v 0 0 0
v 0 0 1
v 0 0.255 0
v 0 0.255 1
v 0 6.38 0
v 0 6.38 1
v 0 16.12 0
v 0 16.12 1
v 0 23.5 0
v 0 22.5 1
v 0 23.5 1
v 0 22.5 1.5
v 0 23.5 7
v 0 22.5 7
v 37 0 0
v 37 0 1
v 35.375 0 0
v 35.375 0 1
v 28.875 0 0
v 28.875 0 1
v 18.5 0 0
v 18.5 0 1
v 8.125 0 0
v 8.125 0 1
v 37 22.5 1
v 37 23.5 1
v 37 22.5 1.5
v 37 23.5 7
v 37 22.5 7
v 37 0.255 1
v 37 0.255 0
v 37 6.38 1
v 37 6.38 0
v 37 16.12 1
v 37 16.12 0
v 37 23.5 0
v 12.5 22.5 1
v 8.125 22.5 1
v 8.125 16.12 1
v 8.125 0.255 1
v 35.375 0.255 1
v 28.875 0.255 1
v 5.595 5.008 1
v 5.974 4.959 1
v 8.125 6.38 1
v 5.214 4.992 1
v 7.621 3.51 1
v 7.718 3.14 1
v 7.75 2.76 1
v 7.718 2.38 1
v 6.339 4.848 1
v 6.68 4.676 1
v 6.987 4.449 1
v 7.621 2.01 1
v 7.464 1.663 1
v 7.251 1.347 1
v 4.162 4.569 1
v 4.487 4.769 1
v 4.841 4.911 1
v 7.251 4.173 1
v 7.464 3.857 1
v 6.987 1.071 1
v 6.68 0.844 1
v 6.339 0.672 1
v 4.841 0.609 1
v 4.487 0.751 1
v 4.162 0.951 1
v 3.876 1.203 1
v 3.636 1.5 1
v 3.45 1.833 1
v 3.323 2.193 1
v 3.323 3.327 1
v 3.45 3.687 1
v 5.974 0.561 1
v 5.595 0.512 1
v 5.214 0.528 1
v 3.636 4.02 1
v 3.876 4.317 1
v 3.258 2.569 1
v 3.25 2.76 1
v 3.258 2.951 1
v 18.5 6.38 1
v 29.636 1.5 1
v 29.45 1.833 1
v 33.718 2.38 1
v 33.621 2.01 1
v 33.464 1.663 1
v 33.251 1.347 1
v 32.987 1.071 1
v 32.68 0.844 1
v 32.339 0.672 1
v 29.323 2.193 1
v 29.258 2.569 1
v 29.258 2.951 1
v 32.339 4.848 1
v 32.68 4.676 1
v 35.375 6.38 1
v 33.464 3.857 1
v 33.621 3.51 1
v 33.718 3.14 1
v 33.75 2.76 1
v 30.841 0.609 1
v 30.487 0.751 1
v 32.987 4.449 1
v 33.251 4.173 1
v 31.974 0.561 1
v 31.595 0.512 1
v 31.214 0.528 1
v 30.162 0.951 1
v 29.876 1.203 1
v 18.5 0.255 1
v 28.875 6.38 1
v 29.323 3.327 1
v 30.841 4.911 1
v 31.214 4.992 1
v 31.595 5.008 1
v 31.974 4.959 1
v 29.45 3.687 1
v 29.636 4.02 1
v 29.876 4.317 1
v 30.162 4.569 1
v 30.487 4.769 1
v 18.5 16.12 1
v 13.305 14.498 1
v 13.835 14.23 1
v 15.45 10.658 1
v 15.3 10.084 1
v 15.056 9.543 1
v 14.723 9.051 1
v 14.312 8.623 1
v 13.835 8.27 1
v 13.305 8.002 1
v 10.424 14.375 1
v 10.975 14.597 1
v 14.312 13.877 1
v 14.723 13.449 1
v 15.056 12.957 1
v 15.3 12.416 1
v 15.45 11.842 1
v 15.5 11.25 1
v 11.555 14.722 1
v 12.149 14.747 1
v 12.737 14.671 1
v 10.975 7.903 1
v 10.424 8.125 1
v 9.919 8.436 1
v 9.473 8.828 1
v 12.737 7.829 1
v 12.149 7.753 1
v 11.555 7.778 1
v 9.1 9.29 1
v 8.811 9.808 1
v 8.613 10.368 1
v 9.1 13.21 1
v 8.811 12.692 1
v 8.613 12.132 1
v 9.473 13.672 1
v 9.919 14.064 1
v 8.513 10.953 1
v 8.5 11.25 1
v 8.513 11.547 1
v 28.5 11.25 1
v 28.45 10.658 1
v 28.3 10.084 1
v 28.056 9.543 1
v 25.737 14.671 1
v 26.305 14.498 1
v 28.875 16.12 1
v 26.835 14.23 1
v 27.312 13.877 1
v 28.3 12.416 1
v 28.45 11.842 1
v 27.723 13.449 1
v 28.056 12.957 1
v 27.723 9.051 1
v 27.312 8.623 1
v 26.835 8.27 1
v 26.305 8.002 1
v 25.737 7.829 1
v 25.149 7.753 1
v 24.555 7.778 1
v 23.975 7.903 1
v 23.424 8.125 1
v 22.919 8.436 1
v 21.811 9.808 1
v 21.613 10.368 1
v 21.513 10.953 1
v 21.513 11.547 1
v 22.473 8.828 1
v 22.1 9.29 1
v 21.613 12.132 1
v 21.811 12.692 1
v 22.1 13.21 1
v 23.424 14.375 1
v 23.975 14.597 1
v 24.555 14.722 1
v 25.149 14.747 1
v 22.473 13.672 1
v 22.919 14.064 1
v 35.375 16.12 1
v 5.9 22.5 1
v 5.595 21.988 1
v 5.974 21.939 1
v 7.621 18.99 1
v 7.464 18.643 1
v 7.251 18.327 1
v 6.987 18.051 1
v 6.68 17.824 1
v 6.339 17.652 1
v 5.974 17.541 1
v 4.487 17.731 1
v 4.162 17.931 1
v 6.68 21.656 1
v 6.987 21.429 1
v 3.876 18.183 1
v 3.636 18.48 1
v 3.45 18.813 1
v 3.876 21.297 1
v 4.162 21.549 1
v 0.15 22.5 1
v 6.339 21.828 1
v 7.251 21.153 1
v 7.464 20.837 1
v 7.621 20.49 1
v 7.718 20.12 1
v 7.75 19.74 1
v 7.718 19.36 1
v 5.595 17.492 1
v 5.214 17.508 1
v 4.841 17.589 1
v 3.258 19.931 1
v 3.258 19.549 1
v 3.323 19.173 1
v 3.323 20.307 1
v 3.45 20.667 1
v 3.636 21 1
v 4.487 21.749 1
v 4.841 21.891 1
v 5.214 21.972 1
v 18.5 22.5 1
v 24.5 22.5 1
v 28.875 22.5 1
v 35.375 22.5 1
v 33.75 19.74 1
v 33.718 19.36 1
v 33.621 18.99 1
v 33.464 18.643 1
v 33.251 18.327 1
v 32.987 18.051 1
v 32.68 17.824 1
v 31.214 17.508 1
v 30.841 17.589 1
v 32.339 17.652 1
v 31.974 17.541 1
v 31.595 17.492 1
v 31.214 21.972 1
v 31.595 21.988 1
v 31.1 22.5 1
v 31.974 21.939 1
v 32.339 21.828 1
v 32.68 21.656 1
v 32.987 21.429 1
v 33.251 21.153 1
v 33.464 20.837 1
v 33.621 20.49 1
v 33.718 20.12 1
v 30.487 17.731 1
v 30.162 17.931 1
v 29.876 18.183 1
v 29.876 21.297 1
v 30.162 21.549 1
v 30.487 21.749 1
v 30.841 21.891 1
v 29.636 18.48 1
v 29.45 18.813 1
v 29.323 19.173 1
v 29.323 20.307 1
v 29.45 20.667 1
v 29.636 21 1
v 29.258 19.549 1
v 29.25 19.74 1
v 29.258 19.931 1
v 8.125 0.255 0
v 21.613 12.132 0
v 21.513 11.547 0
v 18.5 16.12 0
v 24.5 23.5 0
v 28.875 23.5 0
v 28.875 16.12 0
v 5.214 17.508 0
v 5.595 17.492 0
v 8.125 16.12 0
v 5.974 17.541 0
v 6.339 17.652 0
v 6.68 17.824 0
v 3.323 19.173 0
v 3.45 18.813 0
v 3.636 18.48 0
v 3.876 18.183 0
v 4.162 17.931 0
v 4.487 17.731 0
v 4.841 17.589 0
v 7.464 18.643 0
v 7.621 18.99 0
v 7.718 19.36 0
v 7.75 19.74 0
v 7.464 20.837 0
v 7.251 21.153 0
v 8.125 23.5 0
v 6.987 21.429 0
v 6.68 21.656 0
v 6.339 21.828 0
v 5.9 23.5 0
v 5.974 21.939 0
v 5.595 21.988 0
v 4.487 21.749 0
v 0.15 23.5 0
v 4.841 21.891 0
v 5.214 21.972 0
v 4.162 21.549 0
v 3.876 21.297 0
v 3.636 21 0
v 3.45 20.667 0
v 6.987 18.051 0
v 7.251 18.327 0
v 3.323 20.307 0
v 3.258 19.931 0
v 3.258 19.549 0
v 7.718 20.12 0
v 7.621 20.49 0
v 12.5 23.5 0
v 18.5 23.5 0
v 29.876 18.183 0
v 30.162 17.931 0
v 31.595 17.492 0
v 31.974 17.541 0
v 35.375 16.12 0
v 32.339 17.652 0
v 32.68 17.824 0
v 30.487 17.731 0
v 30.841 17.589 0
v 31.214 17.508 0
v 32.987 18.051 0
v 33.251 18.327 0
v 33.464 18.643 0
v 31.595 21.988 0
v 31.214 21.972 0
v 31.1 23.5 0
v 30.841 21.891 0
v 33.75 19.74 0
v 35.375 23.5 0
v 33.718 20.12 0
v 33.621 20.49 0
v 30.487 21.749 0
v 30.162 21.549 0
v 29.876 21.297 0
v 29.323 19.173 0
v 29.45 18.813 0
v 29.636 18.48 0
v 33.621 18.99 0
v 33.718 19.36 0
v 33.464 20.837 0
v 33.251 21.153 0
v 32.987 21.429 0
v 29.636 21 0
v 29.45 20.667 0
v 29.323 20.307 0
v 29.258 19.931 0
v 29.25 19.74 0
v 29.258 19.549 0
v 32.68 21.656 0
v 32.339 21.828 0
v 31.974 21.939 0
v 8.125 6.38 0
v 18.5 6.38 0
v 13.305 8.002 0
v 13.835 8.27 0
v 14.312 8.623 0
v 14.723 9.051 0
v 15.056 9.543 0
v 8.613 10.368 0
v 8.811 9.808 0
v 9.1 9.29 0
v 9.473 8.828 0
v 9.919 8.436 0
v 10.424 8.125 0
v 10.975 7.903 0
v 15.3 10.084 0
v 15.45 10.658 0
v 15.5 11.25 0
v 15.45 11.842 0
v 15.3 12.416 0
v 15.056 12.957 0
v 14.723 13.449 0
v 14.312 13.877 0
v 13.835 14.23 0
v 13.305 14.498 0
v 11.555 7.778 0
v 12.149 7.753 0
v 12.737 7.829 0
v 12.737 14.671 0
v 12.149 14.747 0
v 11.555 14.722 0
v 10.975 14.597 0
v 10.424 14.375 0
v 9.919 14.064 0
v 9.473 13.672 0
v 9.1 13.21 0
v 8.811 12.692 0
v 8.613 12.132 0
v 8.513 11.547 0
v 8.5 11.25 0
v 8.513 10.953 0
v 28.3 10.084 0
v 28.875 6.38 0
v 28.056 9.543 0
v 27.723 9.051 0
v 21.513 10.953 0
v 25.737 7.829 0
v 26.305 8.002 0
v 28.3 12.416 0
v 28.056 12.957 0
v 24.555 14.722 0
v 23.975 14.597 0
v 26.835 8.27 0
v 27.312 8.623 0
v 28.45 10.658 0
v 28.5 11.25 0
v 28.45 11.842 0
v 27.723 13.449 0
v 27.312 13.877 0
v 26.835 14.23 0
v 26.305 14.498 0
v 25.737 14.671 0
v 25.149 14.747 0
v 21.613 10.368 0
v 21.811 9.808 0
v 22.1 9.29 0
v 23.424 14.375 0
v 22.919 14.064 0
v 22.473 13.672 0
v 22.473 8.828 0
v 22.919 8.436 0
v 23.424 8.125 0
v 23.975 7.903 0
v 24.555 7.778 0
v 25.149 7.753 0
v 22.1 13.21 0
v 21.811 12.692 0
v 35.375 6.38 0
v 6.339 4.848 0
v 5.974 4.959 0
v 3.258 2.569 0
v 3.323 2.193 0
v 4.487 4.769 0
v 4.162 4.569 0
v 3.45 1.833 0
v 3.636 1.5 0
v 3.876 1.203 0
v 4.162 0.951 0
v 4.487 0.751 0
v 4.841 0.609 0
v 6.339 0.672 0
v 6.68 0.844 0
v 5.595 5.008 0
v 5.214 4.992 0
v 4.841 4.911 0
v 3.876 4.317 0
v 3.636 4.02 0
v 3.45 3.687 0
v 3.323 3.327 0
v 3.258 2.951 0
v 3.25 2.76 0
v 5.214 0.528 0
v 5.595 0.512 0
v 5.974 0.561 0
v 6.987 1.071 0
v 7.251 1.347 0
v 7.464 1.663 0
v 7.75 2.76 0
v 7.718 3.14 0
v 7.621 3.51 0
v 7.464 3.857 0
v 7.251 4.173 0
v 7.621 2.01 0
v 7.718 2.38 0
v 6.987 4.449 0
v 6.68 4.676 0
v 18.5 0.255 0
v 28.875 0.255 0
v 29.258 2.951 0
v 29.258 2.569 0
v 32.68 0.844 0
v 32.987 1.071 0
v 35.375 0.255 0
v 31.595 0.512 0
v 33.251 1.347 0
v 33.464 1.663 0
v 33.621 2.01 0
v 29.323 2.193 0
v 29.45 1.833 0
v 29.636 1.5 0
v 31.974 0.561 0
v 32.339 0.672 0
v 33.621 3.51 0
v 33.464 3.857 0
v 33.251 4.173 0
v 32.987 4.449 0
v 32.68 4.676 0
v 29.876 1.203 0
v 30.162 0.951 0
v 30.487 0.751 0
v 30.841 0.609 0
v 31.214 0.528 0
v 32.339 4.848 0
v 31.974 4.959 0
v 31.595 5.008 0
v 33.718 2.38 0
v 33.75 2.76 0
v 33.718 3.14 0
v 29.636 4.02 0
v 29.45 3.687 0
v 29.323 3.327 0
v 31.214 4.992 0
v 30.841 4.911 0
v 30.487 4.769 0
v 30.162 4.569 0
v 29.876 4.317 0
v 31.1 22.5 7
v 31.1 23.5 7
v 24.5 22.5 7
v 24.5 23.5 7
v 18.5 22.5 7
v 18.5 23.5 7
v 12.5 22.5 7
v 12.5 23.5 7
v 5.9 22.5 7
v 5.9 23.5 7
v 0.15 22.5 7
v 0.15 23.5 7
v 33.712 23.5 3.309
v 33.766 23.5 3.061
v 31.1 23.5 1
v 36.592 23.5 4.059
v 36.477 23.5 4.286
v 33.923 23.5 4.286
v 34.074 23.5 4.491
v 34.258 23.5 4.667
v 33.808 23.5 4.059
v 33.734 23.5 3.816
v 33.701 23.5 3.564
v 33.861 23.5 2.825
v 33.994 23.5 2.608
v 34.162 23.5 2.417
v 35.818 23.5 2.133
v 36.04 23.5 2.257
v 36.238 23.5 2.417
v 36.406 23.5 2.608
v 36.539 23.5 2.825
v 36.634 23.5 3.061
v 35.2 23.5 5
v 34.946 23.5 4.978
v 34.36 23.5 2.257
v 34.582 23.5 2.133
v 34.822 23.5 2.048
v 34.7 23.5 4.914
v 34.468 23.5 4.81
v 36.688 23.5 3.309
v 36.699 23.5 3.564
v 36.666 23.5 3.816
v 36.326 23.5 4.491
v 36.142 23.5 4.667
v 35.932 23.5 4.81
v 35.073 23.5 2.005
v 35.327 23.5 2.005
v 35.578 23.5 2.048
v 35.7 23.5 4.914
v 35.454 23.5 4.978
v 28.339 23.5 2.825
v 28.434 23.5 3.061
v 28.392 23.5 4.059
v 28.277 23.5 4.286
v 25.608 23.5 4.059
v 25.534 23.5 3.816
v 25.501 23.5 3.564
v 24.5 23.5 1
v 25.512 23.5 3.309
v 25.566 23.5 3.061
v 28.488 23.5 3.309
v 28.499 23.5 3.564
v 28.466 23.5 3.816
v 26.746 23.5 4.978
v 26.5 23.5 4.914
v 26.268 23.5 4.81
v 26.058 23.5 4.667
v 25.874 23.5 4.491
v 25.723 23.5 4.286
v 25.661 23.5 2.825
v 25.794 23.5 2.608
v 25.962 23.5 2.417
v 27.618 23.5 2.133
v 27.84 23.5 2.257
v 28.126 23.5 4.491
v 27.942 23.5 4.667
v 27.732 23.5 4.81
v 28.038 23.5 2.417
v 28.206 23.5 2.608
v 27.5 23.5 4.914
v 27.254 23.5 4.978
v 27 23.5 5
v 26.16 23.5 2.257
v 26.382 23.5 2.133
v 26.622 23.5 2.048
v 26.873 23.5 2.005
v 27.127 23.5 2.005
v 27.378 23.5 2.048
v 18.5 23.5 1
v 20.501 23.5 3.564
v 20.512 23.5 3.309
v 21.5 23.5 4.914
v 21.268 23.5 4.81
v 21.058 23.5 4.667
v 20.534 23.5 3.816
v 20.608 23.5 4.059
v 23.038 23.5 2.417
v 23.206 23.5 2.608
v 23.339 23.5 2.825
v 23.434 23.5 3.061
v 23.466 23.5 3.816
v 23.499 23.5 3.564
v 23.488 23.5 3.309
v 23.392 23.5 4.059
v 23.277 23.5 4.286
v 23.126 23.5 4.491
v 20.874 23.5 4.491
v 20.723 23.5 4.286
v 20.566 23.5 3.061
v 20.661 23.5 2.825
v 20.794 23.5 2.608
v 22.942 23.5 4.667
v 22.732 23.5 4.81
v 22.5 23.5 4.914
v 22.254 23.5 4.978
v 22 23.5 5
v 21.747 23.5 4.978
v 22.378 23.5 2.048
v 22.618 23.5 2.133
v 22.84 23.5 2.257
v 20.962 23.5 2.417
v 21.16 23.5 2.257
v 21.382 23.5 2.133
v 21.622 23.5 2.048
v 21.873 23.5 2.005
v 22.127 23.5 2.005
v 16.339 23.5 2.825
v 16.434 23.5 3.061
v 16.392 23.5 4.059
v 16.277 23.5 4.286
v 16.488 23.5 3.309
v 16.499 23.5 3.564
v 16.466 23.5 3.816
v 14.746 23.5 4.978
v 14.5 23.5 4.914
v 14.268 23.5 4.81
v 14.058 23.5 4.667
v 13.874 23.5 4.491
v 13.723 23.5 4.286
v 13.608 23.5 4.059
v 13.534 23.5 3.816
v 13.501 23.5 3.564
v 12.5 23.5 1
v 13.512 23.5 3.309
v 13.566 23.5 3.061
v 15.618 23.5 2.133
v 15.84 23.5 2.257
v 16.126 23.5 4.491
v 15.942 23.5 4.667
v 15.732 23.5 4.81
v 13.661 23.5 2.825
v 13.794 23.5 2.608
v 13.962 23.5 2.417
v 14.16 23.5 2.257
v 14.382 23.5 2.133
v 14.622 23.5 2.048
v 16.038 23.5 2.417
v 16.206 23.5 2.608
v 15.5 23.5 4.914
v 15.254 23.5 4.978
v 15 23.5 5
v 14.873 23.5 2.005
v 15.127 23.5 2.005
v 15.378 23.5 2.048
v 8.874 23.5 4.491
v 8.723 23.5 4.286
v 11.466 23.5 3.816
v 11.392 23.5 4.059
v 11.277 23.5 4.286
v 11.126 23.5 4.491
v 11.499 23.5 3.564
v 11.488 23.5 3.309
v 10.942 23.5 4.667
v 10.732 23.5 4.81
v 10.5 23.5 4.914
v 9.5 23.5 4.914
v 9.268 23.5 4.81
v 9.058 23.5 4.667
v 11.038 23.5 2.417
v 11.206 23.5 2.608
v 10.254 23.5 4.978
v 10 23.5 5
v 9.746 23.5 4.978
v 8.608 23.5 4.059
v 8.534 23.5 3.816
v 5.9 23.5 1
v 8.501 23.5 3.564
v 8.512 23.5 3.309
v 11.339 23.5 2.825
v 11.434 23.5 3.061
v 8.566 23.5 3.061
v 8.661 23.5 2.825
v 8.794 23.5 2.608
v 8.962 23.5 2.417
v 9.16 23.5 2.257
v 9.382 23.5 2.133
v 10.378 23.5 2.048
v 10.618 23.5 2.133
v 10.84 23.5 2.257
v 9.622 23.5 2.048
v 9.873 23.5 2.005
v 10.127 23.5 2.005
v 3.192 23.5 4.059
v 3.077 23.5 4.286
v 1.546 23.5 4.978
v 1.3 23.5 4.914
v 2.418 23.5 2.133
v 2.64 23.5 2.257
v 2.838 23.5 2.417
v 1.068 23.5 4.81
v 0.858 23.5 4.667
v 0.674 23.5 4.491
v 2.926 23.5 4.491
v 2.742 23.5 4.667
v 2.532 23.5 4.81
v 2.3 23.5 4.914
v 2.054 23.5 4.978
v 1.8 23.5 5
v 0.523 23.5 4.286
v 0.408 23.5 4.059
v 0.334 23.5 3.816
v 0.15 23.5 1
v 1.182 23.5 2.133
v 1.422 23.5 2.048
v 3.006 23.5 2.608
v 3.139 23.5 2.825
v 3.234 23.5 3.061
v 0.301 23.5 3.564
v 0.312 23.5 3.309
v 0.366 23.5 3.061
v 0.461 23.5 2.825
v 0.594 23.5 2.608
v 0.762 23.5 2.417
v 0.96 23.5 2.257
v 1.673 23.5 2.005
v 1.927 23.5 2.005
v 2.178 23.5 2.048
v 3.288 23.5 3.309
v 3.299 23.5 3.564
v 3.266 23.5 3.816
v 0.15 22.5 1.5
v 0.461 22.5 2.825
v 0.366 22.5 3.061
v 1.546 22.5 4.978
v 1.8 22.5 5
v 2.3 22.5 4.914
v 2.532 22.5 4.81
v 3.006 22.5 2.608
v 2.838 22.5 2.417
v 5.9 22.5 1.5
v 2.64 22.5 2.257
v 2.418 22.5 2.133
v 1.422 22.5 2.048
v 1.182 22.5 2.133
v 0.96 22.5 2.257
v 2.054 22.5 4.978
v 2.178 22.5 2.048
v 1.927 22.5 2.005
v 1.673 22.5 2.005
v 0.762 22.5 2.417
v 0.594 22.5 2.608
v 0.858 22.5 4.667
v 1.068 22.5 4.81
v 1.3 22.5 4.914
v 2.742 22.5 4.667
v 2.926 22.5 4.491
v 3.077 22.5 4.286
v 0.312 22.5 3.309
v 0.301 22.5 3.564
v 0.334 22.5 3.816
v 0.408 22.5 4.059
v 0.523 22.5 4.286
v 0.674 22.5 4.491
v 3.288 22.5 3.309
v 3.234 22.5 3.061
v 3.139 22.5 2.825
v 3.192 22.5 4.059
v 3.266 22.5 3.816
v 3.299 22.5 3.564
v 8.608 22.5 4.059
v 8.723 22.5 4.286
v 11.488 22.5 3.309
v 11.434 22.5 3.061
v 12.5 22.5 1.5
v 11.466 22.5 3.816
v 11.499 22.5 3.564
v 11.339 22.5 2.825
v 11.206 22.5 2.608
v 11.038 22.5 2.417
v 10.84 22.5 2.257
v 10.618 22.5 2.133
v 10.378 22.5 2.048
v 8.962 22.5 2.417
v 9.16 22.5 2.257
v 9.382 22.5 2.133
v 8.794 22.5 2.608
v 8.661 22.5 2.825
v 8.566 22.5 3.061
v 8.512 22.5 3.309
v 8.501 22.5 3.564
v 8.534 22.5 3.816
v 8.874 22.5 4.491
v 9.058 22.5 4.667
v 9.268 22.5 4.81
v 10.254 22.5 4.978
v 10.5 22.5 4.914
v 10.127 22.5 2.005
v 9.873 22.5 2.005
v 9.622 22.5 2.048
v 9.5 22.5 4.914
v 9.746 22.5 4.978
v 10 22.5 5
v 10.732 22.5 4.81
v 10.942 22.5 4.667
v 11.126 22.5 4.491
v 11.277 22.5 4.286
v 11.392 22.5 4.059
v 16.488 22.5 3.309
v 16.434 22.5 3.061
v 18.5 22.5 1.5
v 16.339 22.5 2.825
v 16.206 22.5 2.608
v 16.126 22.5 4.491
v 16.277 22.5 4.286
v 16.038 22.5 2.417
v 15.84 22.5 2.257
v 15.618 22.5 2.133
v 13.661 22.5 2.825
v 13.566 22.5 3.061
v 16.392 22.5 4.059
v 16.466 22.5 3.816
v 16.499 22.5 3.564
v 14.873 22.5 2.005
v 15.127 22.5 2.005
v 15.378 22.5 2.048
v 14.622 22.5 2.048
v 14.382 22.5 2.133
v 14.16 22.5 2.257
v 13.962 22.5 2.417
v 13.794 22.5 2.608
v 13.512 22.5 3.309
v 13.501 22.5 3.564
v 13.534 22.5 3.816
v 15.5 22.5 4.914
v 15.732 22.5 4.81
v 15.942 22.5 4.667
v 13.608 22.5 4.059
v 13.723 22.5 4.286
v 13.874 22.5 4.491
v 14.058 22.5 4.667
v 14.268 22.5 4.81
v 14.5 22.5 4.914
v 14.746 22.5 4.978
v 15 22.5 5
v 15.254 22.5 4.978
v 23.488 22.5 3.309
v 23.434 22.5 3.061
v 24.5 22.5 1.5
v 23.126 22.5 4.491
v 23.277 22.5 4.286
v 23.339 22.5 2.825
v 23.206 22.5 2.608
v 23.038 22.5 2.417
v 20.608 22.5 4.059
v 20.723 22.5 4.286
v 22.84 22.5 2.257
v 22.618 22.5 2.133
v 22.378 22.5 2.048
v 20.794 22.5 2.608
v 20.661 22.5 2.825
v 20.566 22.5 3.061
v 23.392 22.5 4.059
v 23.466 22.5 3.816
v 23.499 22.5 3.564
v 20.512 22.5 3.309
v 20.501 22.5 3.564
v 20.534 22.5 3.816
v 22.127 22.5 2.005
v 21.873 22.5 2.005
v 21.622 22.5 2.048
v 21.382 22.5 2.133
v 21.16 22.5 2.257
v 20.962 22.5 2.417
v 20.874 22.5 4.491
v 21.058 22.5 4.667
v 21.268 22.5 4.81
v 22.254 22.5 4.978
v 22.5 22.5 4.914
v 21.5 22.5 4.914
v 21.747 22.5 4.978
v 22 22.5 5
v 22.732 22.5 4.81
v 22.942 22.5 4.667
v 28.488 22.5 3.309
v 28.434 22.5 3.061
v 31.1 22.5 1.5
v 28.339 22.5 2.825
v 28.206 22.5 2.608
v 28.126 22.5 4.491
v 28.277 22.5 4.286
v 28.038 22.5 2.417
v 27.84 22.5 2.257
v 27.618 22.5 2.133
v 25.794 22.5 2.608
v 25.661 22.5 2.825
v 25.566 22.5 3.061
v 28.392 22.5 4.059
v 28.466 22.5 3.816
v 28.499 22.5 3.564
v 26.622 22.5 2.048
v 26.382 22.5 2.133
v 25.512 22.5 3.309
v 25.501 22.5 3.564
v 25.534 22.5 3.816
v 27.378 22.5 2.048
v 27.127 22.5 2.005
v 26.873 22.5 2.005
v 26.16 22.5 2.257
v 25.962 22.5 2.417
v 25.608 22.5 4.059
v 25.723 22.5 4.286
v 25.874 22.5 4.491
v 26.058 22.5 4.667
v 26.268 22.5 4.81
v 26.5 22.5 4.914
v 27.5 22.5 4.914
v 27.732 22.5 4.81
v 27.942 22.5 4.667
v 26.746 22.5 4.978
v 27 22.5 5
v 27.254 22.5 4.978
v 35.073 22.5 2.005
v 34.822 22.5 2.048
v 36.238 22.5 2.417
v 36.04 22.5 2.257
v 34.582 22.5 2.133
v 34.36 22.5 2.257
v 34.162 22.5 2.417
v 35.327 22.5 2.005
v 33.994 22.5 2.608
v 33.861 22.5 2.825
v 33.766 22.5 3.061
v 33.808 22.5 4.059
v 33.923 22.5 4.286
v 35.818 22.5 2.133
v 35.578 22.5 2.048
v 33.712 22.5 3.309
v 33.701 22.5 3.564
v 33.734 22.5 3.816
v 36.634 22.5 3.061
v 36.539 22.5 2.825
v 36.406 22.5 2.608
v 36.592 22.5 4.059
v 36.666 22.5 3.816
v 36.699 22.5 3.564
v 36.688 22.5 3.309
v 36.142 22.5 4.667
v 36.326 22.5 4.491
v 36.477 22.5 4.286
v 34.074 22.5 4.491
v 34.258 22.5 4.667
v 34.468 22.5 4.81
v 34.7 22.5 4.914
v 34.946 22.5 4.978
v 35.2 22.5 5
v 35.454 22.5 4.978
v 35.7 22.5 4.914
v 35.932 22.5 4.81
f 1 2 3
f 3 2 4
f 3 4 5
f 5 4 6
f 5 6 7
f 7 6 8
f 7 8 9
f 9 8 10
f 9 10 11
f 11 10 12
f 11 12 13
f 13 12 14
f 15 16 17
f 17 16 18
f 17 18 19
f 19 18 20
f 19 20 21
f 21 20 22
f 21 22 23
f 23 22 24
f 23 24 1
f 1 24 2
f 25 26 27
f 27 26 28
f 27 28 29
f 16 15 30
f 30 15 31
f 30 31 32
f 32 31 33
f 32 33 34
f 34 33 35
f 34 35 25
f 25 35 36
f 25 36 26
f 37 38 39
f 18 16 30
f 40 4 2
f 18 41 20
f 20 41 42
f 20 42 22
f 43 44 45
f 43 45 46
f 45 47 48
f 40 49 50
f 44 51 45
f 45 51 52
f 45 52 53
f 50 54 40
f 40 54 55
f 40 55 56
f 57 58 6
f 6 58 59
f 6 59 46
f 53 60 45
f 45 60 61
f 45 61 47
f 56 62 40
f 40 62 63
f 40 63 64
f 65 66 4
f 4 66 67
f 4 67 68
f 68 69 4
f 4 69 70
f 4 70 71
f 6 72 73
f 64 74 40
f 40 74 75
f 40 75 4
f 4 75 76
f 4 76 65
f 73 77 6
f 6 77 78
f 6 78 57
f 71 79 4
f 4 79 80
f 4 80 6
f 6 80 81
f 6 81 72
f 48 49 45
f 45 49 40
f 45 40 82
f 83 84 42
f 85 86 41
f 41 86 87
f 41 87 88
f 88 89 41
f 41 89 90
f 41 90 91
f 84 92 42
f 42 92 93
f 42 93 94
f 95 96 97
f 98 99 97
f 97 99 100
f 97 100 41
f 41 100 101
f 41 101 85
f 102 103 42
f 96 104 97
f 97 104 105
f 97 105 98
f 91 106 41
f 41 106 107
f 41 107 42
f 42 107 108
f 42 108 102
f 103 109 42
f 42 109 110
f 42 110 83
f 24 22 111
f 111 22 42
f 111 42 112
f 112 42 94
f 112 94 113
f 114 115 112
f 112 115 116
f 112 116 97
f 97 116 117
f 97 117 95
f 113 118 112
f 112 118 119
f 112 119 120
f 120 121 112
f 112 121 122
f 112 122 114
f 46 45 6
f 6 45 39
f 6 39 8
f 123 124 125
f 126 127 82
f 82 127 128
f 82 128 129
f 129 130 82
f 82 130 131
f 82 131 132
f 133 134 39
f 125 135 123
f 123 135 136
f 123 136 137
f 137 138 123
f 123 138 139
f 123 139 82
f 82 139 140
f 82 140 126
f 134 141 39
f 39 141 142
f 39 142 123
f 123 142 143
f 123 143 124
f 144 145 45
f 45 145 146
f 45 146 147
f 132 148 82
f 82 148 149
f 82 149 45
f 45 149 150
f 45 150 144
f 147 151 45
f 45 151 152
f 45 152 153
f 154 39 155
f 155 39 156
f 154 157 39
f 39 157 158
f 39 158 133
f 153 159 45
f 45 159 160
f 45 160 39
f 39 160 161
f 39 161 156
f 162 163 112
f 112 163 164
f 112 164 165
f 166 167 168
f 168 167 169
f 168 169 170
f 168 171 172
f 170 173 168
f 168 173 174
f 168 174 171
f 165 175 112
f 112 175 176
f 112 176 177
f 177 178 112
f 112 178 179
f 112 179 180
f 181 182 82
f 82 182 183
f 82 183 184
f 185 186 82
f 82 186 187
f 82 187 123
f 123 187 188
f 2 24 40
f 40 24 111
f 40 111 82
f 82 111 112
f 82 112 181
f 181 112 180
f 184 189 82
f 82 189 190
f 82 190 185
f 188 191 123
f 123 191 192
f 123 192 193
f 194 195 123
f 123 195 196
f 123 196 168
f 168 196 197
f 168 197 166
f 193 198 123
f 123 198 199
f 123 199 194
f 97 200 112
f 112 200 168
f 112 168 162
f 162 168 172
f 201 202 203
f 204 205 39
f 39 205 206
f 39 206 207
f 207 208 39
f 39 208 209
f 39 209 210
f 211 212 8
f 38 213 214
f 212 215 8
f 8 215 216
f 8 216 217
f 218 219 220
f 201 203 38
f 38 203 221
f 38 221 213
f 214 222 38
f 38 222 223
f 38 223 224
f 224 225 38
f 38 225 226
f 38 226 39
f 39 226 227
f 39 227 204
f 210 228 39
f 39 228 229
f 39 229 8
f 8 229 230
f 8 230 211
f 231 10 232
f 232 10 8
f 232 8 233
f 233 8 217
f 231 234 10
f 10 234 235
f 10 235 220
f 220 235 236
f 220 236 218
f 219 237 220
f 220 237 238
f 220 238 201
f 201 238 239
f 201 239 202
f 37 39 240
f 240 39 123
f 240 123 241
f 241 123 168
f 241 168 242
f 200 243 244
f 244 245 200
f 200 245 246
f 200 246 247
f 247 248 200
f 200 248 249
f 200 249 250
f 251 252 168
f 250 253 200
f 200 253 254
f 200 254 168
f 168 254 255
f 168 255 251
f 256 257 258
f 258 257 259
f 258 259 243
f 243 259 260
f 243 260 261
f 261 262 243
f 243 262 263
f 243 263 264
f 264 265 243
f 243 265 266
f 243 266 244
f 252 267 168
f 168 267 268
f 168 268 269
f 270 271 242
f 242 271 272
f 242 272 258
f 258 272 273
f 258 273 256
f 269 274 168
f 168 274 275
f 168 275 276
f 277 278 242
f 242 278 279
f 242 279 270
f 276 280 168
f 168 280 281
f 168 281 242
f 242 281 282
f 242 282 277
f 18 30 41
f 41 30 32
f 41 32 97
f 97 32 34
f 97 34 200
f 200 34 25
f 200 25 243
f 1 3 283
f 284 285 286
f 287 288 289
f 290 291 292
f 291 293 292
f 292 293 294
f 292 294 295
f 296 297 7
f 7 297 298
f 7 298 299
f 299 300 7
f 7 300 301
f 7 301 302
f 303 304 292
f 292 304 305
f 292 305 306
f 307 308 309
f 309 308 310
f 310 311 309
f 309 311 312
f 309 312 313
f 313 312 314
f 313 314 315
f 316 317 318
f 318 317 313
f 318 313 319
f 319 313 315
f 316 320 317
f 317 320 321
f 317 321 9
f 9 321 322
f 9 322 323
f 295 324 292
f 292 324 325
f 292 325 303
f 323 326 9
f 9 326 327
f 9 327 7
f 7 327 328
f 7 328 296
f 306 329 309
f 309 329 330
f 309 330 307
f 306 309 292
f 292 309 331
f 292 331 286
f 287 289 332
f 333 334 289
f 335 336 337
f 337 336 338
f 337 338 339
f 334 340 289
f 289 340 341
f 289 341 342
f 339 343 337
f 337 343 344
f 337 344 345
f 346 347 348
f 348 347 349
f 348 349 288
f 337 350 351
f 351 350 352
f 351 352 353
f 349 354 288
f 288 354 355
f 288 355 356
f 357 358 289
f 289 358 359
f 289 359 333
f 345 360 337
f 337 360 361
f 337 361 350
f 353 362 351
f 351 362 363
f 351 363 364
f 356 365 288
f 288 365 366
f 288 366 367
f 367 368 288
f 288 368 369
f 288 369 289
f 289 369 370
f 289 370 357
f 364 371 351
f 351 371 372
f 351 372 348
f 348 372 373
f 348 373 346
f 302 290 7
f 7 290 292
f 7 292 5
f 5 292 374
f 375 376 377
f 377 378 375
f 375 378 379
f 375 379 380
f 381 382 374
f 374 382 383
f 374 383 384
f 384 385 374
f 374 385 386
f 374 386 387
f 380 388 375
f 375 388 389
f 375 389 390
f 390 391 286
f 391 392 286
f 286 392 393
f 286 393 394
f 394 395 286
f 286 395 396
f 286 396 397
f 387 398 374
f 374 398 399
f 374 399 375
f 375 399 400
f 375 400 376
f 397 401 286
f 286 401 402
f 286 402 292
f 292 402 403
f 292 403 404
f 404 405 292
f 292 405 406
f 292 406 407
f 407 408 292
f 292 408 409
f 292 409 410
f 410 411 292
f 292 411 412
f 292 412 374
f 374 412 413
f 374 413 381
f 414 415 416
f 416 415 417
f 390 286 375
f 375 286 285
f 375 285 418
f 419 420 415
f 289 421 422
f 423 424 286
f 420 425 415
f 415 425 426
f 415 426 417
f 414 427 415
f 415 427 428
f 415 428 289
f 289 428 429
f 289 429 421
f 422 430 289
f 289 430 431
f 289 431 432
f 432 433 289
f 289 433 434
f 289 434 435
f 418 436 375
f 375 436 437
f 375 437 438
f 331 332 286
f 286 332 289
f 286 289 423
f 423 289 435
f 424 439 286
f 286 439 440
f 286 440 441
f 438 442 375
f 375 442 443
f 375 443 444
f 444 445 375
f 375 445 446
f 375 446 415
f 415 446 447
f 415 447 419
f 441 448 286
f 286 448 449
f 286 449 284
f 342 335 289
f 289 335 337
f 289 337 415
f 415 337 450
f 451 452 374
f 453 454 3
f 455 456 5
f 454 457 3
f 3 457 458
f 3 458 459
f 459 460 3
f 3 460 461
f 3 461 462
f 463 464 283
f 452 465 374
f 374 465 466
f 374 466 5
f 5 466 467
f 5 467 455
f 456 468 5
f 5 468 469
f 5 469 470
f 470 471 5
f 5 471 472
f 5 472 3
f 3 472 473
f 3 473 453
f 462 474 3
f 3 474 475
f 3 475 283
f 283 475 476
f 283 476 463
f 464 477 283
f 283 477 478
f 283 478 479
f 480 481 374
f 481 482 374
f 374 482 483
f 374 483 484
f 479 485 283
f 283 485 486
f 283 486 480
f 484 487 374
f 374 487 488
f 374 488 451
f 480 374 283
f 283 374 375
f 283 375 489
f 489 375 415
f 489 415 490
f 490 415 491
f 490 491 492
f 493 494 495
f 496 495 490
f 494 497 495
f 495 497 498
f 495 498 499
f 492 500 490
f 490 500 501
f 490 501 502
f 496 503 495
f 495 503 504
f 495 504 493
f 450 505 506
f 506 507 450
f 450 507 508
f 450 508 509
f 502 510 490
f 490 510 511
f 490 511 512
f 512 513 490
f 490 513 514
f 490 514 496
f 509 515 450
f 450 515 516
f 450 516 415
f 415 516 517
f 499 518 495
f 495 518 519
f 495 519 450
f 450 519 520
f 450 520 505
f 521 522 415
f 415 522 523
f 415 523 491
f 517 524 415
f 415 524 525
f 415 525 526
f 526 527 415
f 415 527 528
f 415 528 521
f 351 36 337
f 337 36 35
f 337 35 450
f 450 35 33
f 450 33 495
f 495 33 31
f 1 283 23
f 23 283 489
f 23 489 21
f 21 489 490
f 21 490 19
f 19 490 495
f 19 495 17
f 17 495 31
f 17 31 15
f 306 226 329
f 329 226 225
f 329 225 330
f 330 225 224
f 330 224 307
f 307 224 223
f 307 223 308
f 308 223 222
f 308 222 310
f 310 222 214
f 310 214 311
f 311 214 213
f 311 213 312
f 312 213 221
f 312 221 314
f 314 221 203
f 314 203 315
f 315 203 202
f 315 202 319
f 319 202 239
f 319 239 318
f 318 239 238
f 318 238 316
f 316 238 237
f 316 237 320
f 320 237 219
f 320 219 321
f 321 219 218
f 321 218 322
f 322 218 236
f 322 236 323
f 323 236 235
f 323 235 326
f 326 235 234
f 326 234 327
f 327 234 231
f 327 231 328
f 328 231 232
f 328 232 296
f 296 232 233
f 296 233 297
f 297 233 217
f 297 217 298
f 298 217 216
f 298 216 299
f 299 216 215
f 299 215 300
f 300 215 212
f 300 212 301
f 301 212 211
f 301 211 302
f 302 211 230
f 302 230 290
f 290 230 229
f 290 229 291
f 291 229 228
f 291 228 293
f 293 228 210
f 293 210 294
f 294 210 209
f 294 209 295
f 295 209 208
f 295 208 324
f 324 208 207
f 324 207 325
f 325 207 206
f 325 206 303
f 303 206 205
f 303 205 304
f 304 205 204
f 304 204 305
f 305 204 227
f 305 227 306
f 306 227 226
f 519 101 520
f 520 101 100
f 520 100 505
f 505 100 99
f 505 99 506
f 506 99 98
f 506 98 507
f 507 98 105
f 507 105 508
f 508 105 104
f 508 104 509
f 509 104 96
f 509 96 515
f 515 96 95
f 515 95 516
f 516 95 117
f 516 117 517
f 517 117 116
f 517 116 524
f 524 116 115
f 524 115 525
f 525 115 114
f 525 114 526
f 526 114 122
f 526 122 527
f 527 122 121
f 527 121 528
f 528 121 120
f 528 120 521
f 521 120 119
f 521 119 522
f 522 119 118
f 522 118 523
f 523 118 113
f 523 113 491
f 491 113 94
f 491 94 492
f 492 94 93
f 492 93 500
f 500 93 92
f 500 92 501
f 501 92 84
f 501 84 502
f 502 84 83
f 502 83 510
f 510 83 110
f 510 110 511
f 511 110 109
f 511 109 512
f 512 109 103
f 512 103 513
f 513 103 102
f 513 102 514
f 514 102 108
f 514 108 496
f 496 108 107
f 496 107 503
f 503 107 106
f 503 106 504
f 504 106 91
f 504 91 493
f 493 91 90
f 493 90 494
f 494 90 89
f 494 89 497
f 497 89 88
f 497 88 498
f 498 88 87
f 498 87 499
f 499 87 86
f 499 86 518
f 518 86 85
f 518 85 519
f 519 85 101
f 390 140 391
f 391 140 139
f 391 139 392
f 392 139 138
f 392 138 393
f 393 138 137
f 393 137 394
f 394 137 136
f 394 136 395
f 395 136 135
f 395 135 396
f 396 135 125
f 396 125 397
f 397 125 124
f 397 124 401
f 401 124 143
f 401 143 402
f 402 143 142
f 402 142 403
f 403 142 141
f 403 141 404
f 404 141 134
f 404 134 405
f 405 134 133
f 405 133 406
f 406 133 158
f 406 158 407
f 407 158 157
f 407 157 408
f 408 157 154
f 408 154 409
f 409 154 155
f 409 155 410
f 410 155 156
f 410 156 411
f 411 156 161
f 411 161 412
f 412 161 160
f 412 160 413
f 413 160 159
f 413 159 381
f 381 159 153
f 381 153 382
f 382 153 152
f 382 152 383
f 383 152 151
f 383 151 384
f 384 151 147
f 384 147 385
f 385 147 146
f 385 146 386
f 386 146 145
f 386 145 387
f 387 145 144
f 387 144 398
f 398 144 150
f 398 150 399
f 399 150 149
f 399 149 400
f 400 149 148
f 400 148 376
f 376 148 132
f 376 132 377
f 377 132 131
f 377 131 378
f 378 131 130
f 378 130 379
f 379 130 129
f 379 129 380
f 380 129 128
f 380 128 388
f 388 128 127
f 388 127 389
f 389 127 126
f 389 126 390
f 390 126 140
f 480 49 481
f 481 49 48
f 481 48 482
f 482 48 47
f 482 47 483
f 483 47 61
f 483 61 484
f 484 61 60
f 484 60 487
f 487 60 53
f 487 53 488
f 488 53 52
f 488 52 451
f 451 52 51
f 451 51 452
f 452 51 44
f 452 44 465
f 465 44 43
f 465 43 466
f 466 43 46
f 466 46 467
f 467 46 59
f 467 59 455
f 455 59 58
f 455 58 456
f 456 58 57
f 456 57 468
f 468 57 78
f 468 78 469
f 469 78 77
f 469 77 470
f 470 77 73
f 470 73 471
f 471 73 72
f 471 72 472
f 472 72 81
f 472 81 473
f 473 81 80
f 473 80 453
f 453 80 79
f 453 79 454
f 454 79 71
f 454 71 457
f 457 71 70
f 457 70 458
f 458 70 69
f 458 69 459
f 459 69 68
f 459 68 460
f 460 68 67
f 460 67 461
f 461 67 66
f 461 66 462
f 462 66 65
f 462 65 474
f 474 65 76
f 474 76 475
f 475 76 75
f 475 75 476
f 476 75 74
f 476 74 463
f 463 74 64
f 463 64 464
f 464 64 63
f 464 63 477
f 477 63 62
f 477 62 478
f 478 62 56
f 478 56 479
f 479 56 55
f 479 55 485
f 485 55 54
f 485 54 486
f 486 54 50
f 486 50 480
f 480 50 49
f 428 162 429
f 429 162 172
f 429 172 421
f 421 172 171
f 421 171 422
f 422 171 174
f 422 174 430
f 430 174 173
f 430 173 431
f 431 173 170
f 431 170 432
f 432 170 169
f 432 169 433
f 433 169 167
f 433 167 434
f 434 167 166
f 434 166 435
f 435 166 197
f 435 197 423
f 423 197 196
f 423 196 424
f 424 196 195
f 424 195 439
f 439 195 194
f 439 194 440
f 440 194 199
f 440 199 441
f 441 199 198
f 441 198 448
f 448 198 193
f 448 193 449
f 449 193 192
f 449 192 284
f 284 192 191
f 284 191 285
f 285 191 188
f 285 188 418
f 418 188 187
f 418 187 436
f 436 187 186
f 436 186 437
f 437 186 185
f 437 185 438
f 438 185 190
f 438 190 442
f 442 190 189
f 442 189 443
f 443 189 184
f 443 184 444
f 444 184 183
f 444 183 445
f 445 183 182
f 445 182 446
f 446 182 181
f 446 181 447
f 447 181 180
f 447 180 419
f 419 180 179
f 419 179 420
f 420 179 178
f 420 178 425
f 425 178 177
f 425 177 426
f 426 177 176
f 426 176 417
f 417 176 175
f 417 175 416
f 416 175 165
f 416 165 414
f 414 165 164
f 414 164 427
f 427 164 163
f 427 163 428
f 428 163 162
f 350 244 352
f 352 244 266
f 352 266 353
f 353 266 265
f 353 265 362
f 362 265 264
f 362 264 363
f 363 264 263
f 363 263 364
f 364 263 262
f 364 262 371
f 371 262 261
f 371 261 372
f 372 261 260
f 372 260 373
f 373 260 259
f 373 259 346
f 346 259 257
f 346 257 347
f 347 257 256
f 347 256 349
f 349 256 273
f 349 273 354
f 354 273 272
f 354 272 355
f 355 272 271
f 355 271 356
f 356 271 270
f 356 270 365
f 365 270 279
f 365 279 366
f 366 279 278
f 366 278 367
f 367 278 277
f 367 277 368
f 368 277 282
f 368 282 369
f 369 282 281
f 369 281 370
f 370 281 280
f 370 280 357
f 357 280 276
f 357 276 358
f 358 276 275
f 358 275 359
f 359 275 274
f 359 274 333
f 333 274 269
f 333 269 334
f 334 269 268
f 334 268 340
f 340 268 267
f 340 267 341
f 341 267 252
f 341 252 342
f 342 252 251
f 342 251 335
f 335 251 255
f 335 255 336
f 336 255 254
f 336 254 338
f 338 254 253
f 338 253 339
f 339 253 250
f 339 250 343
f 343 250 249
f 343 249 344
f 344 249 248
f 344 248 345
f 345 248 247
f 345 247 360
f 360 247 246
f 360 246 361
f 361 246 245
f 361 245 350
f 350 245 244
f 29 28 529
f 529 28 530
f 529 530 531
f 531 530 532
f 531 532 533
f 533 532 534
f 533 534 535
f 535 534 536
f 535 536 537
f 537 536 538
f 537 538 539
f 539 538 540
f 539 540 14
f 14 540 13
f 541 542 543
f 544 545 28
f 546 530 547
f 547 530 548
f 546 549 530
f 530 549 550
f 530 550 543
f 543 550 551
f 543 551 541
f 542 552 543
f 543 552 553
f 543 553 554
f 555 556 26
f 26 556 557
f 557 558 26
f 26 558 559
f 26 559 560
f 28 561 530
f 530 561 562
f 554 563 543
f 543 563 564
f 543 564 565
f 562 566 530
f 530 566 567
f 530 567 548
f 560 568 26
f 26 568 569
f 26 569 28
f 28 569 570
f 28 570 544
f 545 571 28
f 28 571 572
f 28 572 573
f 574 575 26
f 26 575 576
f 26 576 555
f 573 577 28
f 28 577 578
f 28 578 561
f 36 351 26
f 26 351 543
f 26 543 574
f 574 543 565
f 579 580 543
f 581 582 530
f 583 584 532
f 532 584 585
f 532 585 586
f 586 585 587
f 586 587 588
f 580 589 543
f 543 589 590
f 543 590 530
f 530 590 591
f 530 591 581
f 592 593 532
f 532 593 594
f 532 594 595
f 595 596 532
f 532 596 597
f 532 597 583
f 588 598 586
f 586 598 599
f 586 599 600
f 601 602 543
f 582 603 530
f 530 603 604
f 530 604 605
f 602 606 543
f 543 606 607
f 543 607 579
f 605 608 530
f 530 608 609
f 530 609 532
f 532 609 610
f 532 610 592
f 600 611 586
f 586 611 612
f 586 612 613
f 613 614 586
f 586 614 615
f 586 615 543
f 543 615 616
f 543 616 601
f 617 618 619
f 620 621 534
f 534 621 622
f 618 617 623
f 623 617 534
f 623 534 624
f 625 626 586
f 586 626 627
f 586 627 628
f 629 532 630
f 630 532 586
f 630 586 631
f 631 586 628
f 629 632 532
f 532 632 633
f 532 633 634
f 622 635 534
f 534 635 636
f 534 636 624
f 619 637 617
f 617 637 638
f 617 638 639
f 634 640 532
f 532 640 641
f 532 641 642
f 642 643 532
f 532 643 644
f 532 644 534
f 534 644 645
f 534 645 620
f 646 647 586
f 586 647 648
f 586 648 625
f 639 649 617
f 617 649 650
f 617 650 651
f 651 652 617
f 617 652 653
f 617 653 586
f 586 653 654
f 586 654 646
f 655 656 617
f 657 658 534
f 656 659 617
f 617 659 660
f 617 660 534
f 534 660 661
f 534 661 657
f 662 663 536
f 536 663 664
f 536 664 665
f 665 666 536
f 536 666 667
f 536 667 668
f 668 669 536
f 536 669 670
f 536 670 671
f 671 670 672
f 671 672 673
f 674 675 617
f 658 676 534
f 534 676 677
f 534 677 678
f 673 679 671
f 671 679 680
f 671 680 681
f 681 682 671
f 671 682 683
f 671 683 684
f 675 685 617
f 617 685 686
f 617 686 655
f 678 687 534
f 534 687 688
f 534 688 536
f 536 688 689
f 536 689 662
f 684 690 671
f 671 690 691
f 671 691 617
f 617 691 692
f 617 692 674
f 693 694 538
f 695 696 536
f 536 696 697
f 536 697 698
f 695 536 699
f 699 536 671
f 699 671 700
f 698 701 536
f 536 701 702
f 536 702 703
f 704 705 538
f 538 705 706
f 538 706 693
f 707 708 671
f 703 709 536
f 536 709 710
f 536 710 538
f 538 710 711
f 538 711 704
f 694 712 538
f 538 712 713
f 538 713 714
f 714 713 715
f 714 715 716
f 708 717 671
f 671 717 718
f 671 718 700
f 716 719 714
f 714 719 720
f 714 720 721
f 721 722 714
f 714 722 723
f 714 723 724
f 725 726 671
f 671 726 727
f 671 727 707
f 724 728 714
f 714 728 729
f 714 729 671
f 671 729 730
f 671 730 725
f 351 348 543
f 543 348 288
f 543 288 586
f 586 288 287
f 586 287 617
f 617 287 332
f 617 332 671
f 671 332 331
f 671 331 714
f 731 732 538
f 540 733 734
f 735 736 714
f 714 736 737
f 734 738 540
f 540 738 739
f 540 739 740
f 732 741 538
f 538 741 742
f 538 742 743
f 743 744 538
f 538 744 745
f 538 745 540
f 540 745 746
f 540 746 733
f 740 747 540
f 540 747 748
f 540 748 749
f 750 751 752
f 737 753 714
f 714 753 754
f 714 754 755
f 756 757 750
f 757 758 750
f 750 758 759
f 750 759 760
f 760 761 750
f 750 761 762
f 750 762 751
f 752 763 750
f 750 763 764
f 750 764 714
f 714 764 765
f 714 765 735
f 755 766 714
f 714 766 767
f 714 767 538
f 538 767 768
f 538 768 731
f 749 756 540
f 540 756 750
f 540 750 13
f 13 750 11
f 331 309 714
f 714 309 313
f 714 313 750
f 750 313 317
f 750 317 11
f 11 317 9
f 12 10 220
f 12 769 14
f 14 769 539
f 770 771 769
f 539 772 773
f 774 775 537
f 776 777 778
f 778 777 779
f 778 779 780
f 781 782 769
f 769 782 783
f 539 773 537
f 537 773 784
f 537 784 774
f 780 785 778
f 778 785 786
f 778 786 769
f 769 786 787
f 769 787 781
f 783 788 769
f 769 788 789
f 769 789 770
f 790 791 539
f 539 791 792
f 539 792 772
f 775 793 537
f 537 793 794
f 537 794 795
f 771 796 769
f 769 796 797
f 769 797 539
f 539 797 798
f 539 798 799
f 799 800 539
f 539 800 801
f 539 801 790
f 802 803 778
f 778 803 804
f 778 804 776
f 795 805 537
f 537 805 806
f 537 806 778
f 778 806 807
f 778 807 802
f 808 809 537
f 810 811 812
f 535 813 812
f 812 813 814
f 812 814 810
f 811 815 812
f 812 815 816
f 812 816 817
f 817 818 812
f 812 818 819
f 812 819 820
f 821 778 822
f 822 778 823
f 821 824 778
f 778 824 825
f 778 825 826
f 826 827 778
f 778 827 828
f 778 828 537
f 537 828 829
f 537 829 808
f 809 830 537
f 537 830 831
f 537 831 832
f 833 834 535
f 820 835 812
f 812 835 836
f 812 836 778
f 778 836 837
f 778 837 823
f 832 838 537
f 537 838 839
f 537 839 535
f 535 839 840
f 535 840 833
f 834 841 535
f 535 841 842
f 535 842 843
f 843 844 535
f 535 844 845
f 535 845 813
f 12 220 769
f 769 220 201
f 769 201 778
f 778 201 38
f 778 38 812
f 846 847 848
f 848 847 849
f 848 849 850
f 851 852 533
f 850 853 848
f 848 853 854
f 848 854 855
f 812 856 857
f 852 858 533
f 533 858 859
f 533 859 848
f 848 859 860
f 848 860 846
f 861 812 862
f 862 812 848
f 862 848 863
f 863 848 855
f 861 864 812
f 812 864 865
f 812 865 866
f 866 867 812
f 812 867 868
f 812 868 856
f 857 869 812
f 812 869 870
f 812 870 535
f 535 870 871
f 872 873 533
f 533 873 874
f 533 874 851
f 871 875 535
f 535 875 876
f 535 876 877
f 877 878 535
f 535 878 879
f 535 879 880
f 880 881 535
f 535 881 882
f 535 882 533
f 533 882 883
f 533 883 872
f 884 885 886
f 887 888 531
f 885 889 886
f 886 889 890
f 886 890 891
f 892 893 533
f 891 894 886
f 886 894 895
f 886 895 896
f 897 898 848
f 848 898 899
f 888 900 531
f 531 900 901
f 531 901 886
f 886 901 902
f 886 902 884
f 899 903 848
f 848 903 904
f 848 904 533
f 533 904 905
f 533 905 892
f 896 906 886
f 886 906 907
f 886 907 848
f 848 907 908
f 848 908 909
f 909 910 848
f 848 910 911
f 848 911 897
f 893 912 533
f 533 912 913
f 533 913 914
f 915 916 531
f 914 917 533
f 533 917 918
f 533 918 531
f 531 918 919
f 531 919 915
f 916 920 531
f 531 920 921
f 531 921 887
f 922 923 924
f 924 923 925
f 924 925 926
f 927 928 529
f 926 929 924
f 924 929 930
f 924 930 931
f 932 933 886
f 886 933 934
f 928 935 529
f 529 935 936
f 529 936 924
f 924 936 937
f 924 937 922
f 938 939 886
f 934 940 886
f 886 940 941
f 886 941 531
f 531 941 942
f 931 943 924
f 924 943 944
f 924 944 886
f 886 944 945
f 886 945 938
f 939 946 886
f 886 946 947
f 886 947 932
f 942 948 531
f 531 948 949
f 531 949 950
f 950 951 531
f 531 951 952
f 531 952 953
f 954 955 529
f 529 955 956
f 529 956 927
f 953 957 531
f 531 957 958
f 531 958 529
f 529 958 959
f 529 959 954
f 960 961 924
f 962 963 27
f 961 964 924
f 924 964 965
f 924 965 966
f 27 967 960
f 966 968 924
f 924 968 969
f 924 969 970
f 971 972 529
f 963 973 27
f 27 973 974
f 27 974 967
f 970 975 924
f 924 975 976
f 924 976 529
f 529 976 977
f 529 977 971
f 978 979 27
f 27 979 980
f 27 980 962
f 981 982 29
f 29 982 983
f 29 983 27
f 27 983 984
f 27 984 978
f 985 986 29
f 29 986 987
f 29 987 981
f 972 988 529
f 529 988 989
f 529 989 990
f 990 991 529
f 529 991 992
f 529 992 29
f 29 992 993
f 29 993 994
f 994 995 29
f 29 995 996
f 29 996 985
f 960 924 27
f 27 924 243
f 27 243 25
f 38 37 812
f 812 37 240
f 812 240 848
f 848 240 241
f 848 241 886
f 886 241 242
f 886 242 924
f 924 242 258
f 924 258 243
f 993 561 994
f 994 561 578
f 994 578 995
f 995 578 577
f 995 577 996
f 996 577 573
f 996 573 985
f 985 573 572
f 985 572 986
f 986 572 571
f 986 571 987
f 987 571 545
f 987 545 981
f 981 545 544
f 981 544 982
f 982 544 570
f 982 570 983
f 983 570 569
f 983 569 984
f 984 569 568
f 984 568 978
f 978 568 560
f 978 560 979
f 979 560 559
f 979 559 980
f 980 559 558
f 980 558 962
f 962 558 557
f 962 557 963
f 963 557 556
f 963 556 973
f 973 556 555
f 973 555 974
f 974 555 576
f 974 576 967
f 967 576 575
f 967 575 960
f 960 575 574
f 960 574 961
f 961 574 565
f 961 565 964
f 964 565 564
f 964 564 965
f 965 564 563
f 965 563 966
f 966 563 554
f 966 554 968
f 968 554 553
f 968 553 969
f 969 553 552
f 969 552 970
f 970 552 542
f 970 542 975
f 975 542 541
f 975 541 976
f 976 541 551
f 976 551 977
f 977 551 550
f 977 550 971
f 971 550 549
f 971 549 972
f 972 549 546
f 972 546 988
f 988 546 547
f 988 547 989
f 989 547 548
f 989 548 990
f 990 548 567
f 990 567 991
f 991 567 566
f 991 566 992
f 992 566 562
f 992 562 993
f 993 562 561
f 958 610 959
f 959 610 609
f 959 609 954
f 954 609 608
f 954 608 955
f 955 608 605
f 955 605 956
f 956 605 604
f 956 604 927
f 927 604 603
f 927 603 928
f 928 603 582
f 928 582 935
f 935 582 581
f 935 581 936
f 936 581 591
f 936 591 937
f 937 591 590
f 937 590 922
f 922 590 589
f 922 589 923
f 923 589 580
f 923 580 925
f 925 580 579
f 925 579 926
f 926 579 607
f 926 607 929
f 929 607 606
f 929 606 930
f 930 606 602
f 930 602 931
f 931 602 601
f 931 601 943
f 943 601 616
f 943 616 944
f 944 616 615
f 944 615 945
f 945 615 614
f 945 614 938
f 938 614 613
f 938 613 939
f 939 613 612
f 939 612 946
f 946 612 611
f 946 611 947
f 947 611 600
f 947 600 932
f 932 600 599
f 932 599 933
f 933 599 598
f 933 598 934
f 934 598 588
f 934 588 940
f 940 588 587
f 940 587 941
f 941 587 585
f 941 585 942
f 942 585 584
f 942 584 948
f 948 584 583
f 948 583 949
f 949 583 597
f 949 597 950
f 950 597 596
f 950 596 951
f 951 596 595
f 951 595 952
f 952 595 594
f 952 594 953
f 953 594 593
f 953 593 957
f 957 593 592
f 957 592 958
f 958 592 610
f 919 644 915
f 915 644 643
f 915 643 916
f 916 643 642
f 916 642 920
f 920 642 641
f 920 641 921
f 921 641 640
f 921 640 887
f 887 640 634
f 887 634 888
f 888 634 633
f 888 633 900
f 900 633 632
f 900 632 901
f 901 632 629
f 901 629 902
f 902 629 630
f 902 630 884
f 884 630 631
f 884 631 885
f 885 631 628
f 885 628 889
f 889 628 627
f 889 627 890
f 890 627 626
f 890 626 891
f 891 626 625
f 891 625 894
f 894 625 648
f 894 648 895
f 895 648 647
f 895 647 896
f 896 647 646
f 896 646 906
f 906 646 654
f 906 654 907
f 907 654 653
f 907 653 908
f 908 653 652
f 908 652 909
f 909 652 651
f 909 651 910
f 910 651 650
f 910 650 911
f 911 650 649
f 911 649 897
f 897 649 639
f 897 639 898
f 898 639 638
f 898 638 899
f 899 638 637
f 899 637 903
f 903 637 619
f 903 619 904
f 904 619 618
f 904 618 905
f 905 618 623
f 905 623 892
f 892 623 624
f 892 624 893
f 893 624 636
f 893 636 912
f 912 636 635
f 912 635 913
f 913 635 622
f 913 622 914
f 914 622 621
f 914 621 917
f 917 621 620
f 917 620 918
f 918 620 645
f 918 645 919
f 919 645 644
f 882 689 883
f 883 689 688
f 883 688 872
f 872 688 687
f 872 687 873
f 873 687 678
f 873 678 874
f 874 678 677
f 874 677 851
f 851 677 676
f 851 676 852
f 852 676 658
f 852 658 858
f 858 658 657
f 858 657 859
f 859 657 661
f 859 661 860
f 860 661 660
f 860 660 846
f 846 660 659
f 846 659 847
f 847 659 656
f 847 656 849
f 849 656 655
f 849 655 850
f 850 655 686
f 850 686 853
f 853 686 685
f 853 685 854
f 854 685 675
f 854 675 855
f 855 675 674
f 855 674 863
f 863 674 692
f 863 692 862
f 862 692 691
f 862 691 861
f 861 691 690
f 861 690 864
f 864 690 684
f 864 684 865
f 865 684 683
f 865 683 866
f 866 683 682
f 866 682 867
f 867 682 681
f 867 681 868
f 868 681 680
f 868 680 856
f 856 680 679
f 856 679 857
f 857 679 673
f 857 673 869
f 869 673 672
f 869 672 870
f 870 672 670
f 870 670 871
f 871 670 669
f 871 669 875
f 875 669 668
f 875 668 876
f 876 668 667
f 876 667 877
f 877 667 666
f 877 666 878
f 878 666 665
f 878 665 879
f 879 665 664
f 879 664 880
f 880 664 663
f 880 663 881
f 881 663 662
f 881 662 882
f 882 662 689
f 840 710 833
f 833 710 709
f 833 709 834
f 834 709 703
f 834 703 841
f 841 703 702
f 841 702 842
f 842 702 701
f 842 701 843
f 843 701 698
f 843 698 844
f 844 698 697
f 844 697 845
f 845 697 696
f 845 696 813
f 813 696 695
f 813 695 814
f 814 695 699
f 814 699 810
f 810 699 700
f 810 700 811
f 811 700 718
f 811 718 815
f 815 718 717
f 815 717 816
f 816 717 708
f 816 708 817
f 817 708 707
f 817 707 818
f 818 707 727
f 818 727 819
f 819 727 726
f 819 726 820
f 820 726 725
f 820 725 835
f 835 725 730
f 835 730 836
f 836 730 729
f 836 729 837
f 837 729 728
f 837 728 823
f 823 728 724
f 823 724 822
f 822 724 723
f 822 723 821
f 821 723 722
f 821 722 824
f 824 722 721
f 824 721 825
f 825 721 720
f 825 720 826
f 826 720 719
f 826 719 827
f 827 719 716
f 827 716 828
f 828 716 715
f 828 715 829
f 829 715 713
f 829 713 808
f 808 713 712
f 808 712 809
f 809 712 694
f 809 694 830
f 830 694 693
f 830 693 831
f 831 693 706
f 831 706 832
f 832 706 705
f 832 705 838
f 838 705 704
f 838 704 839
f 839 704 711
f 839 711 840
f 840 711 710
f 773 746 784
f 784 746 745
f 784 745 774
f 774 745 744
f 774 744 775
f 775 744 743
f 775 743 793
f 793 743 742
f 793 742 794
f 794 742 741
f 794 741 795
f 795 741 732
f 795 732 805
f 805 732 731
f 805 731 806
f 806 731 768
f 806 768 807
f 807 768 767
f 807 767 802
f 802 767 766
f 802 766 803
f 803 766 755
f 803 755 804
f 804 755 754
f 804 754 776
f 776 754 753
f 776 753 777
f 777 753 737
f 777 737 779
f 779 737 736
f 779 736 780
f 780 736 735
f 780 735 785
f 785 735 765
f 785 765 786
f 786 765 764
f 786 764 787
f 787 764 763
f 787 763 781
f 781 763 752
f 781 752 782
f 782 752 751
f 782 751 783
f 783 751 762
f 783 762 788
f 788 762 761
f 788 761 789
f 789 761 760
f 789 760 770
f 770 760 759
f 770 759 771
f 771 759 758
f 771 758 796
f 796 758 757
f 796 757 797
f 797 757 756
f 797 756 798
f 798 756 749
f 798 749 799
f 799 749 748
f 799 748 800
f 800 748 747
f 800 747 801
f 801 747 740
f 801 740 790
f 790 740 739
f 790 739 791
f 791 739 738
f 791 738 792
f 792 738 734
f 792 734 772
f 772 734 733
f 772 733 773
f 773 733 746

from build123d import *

# Parameters (mm, degrees)
ESBO_O1_W                = 37
ESBO_O1_H                = 22.5
RESSALTO_EXTRUS_O1_DEPTH = 1
ESBO_O2_R                = 2.25
ESBO_O2_R_2              = 3.5
CORTE_EXTRUS_O1_DEPTH    = 1
ESBO_O3_W                = 37
ESBO_O3_H                = 7
RESSALTO_EXTRUS_O2_DEPTH = 1
ESBO_O5_R                = 1.5
CORTE_EXTRUS_O2_DEPTH    = 1


with BuildPart() as part:
    # Esboço1 → Ressalto-extrusão1 (new body)
    with BuildSketch(Plane.XY):
        with Locations((18.5, 11.25)):
            Rectangle(ESBO_O1_W, ESBO_O1_H)
    extrude(amount=RESSALTO_EXTRUS_O1_DEPTH)

    # Esboço2 → Corte-extrusão1 (cut)
    with BuildSketch(Plane.XY.offset(1)):
        with Locations((5.5, 19.74)):
            Circle(ESBO_O2_R)
        with Locations((25, 11.25)):
            Circle(ESBO_O2_R_2)
        with Locations(Location((5.5, 2.76, 0), (0, 0, 180))):
            Circle(ESBO_O2_R)
        with Locations(Location((12, 11.25, 0), (0, 0, 180))):
            Circle(ESBO_O2_R_2)
        with Locations((31.5, 2.76)):
            Circle(ESBO_O2_R)
        with Locations(Location((31.5, 19.74, 0), (0, 0, 180))):
            Circle(ESBO_O2_R)
    extrude(amount=-CORTE_EXTRUS_O1_DEPTH, mode=Mode.SUBTRACT)

    # Esboço3 → Ressalto-extrusão2 (add)
    with BuildSketch(Plane(origin=(0, 22.5, 0), x_dir=(1, 0, 0), z_dir=(0, 1, 0))):
        with Locations((18.5, -3.5)):
            Rectangle(ESBO_O3_W, ESBO_O3_H)
    extrude(amount=RESSALTO_EXTRUS_O2_DEPTH)

    # Esboço5 → Corte-extrusão2 (cut)
    with BuildSketch(Plane(origin=(0, 23.5, 0), x_dir=(1, 0, 0), z_dir=(0, 1, 0))):
        with Locations(Location((1.8, -3.5, 0), (0, 0, 270))):
            Circle(ESBO_O5_R)
        with Locations(Location((10, -3.5, 0), (0, 0, 270))):
            Circle(ESBO_O5_R)
        with Locations(Location((15, -3.5, 0), (0, 0, 270))):
            Circle(ESBO_O5_R)
        with Locations(Location((22, -3.5, 0), (0, 0, 270))):
            Circle(ESBO_O5_R)
        with Locations(Location((27, -3.5, 0), (0, 0, 270))):
            Circle(ESBO_O5_R)
        with Locations(Location((35.2, -3.5, 0), (0, 0, 270))):
            Circle(ESBO_O5_R)
    extrude(amount=-CORTE_EXTRUS_O2_DEPTH, mode=Mode.SUBTRACT)


solid = part.part
